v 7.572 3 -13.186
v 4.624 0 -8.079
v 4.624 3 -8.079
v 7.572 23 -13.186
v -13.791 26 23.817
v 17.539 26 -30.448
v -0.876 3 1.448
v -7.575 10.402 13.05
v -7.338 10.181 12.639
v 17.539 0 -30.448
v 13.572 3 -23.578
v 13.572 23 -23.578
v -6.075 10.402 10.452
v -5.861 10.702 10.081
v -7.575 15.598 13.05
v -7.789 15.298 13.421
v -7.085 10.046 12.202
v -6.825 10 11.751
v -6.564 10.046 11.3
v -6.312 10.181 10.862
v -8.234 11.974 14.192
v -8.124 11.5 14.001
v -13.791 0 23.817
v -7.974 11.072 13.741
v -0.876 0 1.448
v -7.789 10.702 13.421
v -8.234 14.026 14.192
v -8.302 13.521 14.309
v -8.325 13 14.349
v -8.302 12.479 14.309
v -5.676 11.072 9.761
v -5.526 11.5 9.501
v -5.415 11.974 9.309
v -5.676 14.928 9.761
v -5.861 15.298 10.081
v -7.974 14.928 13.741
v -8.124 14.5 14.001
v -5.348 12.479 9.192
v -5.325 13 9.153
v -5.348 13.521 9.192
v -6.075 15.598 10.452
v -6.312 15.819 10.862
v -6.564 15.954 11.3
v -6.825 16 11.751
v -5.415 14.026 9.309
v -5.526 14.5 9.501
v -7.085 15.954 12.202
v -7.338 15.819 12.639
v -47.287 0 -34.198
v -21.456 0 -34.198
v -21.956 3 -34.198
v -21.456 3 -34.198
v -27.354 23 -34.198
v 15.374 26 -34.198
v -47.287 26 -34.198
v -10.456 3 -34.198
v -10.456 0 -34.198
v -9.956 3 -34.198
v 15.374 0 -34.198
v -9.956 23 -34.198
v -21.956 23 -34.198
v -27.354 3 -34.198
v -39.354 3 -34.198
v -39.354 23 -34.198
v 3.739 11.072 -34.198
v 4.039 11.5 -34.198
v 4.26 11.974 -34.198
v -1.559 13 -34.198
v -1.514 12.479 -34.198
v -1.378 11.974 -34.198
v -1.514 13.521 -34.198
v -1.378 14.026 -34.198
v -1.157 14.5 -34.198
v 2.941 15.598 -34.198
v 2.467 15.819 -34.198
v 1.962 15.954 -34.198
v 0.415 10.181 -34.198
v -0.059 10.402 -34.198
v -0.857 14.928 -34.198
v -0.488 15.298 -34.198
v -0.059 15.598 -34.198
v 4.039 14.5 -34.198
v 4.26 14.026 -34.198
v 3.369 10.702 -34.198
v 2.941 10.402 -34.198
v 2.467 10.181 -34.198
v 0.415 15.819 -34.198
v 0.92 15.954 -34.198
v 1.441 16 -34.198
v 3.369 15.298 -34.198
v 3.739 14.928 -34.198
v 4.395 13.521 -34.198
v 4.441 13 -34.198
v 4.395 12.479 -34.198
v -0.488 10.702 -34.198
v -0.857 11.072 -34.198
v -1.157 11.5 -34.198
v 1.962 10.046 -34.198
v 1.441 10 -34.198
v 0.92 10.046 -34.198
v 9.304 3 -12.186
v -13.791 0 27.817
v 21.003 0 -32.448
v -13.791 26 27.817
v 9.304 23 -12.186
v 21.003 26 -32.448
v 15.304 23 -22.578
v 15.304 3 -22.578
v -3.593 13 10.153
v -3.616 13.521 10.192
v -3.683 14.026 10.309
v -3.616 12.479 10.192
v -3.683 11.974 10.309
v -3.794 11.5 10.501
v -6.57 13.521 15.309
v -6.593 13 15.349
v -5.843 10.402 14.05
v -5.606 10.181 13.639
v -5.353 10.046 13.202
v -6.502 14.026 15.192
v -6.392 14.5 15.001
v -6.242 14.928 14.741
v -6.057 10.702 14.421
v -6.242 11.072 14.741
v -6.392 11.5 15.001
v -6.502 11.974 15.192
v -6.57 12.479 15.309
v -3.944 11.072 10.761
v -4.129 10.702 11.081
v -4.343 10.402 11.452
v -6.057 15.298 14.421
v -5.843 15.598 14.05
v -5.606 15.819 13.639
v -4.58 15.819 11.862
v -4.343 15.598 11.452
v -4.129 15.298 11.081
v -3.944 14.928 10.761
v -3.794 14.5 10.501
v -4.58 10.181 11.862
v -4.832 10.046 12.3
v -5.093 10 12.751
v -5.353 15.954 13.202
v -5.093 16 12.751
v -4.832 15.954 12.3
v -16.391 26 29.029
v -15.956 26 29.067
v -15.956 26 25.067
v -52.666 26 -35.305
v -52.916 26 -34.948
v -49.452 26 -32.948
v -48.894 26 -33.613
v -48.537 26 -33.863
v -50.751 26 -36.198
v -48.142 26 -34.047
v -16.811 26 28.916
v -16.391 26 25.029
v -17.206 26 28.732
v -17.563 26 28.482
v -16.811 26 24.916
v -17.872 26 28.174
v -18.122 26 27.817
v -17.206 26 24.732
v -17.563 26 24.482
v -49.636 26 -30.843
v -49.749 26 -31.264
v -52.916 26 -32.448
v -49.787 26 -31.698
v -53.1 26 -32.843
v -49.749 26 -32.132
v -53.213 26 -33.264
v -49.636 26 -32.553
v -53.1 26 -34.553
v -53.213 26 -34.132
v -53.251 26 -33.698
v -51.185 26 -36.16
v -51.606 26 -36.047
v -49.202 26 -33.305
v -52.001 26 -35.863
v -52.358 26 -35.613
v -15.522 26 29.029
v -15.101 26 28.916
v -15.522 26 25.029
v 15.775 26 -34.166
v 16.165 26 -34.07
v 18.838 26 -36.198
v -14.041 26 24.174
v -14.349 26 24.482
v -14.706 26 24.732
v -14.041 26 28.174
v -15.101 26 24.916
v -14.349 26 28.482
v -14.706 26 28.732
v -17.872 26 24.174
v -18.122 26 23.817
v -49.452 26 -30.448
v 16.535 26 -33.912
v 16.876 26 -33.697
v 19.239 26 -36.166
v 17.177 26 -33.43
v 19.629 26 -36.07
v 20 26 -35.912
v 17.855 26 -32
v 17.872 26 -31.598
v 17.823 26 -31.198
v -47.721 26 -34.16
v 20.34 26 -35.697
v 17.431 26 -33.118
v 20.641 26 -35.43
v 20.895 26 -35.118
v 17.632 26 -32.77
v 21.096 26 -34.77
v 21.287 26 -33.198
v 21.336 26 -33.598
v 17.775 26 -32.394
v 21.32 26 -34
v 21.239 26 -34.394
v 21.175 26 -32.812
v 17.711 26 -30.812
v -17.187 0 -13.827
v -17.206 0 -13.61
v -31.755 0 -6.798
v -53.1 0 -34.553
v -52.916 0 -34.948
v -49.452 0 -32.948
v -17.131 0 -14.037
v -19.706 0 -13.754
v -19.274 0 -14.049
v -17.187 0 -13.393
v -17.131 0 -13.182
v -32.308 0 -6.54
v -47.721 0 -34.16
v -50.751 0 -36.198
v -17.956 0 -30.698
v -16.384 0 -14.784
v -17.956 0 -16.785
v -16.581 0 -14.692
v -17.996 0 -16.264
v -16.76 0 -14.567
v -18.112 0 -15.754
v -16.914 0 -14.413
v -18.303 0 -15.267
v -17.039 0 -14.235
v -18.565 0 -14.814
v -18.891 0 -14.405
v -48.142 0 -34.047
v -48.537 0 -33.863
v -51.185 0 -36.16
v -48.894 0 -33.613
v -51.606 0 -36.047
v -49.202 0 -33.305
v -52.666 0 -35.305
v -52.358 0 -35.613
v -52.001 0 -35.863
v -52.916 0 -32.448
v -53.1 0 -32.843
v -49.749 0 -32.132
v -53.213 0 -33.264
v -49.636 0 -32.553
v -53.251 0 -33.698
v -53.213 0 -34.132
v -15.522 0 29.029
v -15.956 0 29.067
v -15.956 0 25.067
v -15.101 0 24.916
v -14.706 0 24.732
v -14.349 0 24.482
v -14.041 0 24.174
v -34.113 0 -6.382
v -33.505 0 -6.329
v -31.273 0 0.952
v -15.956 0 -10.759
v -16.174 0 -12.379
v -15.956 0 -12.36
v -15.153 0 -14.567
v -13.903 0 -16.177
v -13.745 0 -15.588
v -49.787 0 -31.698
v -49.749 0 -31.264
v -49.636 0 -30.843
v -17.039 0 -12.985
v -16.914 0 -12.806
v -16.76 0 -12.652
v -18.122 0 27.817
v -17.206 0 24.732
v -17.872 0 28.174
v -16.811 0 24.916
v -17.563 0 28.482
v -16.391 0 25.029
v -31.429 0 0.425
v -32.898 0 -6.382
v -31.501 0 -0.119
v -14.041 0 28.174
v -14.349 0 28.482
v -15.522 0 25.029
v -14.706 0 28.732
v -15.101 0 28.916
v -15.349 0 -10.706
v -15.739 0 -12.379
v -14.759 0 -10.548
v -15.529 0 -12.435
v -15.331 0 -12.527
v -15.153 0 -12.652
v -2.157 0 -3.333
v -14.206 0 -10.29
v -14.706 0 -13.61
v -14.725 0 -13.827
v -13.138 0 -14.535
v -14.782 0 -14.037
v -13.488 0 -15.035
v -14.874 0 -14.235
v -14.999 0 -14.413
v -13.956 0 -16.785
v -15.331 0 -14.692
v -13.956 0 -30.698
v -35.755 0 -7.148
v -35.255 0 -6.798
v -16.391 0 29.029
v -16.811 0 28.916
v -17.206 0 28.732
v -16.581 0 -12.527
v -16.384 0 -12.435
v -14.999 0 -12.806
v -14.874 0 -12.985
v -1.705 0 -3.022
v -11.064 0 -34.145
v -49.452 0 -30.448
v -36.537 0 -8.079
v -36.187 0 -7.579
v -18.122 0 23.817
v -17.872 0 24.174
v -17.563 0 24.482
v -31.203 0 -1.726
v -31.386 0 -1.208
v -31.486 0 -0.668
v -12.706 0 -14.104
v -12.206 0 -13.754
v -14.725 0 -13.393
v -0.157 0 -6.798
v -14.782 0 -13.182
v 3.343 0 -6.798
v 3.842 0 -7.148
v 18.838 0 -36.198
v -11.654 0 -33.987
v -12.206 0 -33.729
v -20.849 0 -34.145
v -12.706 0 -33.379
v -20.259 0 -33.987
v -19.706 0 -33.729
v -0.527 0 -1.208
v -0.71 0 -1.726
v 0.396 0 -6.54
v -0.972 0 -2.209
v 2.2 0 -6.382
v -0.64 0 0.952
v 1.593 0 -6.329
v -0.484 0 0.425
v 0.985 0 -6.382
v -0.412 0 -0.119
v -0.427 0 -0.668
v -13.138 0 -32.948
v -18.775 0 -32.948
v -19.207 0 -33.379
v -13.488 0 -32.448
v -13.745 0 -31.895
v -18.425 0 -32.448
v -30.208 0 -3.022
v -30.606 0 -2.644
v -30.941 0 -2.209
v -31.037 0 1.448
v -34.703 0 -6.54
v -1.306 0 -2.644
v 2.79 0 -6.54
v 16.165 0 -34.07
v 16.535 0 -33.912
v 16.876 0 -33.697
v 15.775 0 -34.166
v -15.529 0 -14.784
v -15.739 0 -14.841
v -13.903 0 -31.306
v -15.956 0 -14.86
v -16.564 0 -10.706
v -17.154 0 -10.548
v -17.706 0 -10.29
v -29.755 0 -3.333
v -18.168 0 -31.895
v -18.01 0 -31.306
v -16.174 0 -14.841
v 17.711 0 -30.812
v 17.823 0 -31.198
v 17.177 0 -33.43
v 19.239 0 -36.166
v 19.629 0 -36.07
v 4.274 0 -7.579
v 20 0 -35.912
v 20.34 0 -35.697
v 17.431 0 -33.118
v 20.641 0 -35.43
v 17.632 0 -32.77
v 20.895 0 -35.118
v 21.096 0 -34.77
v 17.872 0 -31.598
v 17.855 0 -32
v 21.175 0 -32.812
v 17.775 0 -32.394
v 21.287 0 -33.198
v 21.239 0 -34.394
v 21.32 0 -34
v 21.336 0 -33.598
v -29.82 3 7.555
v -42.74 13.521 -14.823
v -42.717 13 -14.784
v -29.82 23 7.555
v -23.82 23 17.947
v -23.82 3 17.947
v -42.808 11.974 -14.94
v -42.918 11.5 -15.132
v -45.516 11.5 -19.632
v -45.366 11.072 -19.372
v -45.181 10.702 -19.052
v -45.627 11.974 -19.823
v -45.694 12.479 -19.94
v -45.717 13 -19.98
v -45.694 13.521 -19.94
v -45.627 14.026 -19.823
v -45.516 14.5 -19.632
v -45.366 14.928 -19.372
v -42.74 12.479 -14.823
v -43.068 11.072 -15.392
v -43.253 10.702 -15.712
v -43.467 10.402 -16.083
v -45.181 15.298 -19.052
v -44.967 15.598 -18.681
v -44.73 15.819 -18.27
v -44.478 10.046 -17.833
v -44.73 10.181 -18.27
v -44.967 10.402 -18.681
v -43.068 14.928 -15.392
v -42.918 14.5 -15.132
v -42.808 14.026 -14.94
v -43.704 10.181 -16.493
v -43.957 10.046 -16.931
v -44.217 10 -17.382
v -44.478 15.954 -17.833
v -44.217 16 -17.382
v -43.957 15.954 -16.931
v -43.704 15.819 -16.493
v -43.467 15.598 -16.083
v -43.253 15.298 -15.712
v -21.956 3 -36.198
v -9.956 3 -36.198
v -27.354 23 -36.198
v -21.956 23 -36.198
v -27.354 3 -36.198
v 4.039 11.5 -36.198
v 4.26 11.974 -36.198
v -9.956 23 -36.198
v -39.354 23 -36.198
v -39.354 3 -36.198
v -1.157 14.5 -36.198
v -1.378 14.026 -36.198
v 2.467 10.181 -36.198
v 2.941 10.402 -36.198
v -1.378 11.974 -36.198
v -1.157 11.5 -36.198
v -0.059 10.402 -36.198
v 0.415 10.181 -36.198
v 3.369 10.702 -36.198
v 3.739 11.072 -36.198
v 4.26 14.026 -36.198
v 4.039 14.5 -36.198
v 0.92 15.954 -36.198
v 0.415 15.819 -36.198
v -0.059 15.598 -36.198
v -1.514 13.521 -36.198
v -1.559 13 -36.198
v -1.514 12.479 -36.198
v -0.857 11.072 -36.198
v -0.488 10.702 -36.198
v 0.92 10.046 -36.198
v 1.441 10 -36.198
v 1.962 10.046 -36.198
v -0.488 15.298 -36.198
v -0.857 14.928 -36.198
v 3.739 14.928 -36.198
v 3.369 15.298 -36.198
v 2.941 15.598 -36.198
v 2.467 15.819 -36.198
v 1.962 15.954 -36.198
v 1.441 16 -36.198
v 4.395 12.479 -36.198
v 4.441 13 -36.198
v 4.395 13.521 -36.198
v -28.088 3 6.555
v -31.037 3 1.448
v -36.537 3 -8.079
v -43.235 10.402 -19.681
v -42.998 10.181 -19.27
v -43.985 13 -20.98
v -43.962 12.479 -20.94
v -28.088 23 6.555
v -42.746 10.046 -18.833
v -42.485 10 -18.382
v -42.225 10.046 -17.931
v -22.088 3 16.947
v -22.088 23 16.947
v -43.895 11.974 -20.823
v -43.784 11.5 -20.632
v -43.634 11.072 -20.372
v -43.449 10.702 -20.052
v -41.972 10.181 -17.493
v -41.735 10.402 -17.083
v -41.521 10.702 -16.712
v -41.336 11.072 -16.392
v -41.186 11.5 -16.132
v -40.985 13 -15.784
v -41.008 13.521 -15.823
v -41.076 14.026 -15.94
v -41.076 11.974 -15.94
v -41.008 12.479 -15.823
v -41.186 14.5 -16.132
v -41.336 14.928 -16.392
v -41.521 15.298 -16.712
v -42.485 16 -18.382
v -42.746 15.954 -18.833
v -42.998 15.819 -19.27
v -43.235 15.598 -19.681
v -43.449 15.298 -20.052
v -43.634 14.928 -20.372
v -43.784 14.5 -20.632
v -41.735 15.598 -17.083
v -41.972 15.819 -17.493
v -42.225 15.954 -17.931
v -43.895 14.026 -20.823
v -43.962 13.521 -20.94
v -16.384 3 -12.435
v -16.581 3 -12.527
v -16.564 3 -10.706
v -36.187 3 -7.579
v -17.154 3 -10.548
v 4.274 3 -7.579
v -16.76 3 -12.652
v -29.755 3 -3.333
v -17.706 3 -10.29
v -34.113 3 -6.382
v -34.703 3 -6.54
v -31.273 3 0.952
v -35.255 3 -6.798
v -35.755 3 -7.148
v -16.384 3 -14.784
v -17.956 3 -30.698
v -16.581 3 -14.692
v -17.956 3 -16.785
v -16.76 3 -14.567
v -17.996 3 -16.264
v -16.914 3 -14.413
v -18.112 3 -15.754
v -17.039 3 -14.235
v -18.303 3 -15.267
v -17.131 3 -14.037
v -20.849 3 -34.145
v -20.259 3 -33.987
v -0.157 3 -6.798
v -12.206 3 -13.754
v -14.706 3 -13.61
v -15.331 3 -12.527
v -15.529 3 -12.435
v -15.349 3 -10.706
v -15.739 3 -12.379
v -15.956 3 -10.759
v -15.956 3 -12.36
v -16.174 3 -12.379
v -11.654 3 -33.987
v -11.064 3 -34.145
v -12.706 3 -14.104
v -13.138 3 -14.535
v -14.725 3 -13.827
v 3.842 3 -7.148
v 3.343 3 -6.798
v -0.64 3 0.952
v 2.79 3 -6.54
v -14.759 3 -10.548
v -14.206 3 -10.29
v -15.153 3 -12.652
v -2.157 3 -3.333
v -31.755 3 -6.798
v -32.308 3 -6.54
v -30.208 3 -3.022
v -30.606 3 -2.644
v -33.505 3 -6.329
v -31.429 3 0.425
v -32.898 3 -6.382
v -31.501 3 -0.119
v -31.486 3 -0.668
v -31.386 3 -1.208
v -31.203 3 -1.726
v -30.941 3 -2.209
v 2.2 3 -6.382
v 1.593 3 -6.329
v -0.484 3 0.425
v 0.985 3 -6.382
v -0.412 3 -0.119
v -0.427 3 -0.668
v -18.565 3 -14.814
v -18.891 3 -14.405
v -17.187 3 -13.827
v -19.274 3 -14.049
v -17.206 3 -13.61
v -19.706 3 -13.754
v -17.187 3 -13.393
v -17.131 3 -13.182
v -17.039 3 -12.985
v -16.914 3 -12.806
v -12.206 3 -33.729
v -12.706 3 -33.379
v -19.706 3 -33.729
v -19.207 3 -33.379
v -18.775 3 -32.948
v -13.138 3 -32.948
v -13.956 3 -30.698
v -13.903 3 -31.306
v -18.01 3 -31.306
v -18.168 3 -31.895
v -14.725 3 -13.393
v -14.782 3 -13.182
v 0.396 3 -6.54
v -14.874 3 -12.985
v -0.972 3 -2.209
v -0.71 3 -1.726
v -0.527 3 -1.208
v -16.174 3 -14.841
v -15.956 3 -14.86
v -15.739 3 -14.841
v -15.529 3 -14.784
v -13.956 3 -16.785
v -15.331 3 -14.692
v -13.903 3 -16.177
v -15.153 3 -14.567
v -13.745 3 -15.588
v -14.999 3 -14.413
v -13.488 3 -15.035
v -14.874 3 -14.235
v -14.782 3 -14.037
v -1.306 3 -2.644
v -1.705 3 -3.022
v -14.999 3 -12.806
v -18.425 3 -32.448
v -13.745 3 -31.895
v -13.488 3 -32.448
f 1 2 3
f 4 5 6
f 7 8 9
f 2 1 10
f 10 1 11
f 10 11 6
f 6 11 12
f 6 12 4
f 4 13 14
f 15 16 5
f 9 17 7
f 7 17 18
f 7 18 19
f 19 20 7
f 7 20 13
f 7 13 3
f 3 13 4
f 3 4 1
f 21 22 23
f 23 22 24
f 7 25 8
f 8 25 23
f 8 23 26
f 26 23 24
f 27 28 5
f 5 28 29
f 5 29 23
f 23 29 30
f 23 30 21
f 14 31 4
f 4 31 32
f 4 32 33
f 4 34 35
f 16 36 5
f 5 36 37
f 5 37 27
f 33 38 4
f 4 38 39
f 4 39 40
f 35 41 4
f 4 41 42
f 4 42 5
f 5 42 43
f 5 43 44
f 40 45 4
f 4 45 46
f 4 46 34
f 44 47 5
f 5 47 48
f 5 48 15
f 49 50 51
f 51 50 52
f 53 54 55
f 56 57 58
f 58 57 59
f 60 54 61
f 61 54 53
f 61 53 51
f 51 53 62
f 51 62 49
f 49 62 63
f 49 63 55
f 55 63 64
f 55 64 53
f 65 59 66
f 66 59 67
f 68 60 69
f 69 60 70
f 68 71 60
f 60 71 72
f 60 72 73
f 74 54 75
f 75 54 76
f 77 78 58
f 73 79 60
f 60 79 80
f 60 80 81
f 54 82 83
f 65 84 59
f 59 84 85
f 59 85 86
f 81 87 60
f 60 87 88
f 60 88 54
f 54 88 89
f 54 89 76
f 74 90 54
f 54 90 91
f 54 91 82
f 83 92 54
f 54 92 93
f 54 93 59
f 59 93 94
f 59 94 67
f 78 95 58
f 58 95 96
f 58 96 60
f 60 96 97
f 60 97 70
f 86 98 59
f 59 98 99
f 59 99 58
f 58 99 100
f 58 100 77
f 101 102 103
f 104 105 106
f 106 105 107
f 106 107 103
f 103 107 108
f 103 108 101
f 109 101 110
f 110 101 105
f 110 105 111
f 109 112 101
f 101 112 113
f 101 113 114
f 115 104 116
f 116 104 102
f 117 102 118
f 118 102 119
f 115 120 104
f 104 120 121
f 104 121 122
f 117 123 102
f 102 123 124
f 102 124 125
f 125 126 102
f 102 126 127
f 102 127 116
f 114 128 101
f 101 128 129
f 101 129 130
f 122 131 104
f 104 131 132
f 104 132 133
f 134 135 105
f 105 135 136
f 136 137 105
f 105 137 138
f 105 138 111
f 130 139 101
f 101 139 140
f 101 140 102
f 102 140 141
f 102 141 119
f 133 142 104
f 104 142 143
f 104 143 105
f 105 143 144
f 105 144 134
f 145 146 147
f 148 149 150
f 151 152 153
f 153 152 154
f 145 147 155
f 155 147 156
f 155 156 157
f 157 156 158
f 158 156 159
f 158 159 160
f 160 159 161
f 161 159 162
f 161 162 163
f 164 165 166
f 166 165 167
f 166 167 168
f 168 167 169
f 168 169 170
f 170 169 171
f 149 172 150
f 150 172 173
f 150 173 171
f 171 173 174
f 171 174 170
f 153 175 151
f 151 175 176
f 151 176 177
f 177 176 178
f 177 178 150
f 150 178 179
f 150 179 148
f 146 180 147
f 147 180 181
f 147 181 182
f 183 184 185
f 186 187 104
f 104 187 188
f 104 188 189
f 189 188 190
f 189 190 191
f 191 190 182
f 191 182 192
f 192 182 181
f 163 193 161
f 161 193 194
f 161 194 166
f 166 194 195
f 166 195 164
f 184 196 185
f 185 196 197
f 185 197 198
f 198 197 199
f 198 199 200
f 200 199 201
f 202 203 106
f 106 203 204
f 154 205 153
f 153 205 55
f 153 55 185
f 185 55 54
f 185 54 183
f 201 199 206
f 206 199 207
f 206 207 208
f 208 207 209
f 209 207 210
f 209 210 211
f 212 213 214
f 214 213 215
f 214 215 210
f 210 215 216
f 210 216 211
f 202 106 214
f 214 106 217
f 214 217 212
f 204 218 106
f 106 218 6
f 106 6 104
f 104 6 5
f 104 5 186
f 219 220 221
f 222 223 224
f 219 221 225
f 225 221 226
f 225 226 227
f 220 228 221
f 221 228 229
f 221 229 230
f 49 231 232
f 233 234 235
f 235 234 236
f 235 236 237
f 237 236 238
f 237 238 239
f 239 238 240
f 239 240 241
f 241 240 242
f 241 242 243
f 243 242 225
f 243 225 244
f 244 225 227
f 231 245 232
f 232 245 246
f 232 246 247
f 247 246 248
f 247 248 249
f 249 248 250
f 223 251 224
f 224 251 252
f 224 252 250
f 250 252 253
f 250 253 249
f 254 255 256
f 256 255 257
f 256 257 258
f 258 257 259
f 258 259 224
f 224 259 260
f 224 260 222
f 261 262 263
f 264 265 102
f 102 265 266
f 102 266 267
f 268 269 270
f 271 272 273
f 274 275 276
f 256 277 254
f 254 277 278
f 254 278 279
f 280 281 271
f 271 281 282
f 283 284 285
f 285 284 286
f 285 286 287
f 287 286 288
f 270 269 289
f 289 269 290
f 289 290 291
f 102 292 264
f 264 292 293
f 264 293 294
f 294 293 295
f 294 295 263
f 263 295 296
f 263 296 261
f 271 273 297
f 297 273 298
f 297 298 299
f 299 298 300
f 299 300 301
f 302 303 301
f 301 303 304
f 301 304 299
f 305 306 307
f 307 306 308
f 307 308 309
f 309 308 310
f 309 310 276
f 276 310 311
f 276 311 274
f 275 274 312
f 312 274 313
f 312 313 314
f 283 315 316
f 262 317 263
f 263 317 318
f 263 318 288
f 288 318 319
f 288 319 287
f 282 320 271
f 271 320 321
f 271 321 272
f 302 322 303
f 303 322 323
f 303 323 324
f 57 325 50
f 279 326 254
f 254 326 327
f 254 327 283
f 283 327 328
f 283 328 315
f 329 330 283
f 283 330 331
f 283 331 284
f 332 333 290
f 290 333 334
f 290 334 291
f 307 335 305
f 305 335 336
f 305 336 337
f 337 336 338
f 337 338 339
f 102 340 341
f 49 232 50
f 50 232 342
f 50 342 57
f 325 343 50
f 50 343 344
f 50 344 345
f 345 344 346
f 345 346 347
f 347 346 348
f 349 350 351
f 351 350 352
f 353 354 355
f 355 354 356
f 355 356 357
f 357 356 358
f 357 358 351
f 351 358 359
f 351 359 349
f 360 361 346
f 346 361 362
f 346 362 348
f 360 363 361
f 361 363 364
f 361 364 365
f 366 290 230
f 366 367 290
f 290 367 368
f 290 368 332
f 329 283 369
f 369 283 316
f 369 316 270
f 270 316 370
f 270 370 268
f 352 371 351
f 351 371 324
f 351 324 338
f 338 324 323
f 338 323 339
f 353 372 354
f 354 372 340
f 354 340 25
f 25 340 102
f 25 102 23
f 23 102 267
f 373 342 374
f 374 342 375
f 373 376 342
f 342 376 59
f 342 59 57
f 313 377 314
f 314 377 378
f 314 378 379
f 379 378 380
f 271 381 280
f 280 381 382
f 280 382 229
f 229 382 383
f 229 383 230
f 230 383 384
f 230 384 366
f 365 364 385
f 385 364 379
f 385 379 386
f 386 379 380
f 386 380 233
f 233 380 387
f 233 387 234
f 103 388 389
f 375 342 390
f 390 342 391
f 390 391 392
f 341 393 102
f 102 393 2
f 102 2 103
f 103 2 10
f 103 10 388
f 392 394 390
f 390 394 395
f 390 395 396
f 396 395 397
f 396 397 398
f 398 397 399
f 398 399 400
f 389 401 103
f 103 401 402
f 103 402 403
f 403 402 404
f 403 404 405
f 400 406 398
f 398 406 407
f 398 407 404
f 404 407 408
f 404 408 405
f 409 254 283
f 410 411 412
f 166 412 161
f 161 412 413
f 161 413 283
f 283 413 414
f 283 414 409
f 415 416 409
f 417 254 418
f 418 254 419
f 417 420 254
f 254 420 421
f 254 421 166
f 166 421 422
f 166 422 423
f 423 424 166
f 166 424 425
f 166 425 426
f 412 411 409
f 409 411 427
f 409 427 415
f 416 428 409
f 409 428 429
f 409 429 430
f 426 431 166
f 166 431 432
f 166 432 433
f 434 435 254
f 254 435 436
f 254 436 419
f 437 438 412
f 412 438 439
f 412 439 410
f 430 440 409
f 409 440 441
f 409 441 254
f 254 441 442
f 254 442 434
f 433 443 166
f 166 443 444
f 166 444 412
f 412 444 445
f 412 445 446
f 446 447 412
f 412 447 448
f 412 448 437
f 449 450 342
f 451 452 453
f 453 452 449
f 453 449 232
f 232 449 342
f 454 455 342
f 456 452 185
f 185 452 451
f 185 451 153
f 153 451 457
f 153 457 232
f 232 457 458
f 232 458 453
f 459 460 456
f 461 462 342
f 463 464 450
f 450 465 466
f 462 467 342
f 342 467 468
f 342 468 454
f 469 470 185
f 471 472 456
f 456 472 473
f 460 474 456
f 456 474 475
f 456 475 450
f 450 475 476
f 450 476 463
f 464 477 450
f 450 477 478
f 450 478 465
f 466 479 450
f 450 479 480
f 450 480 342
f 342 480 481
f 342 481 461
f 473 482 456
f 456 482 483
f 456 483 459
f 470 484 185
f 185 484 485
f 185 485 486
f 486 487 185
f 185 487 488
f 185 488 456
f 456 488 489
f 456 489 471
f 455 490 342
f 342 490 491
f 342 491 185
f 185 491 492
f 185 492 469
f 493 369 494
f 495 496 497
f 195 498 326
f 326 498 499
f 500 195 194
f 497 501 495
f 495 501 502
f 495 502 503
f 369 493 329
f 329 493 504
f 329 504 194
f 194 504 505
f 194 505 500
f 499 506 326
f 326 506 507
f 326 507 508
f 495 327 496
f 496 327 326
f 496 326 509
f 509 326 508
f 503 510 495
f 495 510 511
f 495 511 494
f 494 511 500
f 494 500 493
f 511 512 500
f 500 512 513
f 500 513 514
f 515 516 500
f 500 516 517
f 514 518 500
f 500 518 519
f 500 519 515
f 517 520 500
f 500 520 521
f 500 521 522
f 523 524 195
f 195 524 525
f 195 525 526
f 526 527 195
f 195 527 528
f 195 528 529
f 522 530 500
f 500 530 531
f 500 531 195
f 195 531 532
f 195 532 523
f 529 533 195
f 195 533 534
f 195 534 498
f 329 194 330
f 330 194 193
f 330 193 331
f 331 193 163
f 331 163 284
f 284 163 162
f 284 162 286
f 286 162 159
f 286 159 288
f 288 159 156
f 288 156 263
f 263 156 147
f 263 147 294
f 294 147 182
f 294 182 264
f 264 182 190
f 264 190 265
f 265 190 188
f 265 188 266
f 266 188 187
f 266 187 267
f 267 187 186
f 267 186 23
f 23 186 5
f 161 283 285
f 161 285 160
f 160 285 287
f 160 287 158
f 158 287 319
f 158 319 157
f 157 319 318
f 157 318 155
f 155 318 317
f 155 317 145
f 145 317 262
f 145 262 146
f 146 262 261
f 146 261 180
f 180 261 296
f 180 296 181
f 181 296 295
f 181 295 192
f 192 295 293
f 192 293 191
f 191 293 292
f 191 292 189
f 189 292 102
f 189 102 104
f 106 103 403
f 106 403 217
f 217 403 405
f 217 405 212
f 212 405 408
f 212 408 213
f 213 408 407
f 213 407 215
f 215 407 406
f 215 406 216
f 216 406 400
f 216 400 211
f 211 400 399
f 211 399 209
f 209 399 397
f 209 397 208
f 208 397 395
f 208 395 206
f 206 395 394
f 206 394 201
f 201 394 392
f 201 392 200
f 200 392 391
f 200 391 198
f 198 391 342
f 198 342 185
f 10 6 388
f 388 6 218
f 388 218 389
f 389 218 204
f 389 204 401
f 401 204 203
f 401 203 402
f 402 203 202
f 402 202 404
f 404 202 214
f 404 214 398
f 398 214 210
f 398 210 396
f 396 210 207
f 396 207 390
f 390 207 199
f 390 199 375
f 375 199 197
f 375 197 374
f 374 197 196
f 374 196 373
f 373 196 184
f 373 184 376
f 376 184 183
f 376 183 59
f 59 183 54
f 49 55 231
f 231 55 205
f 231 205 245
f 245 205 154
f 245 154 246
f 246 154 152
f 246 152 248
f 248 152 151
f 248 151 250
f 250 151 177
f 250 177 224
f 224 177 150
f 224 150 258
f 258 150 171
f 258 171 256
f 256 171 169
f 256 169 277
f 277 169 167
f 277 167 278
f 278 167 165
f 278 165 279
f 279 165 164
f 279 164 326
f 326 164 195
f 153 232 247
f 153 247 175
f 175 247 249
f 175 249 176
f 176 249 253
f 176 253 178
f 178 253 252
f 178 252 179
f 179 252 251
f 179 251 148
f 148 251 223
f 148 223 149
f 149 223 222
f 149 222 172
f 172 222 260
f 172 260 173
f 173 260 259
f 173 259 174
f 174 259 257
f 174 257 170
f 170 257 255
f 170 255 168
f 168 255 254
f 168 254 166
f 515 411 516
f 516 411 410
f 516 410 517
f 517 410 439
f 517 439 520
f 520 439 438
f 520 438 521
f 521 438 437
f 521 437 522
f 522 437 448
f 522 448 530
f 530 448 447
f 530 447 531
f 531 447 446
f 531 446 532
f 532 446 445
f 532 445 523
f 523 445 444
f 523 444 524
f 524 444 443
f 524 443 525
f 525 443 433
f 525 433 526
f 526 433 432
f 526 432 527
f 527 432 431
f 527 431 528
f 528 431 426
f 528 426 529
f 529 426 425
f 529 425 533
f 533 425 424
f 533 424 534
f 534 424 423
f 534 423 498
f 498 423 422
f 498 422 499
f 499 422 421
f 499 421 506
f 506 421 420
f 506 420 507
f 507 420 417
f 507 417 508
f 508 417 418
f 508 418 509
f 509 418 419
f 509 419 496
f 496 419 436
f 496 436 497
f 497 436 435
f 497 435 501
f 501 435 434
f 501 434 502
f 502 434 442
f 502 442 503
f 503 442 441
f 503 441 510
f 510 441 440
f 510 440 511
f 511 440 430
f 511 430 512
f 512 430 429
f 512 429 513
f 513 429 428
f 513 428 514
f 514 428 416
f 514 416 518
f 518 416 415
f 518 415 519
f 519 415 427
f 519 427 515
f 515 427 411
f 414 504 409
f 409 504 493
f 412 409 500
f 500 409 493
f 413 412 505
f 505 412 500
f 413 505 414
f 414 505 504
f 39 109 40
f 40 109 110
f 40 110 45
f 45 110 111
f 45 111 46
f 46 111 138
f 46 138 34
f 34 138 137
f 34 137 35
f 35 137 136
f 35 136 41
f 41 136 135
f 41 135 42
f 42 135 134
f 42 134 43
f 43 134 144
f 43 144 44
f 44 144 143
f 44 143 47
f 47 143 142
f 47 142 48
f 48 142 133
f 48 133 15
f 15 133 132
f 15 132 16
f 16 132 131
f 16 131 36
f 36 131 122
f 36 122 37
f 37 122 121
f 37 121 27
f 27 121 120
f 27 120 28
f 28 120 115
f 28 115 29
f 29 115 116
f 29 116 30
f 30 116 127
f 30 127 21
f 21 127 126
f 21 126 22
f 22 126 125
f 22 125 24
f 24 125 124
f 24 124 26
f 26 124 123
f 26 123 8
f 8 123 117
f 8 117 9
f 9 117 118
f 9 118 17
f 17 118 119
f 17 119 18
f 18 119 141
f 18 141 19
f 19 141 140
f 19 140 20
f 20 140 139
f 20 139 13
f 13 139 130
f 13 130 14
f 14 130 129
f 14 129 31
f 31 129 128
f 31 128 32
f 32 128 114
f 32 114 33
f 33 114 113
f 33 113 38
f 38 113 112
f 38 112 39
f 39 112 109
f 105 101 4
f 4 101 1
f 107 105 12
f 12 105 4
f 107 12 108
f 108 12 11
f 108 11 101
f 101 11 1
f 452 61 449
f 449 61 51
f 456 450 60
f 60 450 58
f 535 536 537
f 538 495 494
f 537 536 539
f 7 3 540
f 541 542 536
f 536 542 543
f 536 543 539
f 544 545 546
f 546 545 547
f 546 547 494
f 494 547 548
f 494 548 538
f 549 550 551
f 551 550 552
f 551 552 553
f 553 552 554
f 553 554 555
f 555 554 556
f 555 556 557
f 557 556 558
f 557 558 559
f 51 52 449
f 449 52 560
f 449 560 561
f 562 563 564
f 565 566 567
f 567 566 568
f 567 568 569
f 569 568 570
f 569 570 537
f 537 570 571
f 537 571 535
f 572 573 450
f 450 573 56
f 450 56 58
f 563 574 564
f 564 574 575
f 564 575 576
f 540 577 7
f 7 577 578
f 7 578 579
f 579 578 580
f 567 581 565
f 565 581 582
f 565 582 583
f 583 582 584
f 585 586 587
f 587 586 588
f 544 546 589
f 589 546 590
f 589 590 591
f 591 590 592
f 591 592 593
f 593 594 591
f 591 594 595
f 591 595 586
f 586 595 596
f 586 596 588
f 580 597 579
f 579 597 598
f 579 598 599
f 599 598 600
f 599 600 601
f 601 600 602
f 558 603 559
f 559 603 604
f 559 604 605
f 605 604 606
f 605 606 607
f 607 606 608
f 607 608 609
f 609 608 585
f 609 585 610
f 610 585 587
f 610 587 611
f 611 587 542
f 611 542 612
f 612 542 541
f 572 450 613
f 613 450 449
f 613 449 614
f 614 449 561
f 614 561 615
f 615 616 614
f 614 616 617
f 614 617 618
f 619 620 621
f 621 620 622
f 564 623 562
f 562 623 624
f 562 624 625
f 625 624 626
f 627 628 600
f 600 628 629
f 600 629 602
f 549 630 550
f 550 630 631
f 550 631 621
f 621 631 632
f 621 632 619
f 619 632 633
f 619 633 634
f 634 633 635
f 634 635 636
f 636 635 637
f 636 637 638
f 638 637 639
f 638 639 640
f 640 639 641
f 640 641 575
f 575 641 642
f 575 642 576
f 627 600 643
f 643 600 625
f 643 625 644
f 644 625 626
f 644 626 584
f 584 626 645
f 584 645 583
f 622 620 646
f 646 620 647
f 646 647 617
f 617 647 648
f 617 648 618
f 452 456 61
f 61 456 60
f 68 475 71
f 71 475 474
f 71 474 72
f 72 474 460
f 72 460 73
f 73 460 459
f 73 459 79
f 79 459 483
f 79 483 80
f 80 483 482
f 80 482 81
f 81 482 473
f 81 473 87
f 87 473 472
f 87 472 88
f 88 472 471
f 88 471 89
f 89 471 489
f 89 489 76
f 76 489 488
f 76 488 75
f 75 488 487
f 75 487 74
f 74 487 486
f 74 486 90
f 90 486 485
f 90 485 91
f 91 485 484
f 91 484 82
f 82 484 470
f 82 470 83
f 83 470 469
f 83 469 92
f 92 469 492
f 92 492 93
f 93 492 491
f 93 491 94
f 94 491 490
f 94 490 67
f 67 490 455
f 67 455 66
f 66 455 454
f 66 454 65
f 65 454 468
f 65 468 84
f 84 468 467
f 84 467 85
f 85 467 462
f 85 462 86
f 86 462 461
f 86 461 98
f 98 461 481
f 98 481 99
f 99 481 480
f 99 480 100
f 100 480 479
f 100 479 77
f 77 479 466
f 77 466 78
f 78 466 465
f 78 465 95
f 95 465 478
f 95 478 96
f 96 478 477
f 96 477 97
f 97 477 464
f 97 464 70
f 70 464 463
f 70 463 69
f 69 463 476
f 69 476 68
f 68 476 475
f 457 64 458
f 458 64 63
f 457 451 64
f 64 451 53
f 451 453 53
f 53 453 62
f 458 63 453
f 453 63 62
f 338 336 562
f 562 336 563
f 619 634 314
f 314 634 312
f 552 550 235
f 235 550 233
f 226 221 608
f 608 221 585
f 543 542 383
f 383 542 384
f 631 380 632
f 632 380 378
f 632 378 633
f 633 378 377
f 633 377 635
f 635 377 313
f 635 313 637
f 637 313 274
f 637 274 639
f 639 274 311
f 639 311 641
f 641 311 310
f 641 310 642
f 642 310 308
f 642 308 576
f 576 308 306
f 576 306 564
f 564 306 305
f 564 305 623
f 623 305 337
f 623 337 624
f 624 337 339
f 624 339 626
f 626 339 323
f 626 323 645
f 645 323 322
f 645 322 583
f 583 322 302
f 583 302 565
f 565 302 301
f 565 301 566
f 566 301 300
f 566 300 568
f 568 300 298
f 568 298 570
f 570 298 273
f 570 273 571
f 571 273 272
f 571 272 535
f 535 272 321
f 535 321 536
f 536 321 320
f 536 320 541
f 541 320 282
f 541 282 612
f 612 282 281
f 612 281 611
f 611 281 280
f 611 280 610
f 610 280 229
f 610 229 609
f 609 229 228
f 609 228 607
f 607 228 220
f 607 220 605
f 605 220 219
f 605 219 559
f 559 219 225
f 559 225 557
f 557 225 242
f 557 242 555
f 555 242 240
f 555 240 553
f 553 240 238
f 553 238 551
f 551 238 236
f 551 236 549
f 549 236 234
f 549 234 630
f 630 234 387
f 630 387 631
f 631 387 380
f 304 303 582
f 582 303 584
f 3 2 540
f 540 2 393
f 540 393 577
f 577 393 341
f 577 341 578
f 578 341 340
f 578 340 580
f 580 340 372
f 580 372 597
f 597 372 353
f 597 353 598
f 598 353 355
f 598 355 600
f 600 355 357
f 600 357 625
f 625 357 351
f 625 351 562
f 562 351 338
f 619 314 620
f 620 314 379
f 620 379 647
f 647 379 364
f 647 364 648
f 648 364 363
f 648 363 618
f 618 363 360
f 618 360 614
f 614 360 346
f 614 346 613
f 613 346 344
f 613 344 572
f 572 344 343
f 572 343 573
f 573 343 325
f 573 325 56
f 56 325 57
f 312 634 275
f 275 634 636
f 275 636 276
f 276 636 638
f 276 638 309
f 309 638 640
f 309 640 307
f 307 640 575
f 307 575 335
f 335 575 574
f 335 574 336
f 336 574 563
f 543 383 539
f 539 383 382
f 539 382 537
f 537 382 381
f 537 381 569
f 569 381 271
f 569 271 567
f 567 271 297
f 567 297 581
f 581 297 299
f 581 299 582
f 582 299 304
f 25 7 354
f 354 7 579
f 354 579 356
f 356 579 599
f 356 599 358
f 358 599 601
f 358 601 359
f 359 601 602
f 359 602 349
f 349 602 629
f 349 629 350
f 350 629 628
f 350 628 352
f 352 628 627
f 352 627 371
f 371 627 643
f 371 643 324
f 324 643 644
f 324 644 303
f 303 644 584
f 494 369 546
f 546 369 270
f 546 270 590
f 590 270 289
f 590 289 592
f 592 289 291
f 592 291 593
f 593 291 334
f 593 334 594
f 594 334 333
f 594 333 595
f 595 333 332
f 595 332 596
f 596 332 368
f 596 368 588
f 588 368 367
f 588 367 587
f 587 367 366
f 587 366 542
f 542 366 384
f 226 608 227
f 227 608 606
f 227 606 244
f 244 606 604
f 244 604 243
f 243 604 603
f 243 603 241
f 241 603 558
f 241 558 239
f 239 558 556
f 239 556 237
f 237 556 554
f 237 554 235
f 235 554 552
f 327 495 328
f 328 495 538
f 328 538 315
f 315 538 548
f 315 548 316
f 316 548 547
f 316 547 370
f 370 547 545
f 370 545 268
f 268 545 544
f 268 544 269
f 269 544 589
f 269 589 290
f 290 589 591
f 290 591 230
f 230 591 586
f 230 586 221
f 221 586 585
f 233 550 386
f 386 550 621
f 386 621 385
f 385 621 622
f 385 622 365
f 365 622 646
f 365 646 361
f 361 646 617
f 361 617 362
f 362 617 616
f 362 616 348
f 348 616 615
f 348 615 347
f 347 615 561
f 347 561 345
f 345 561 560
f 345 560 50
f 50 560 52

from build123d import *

# Parameters (mm, degrees)
BOSS_EXTRUDE1_DEPTH = 26
FILLET1_R           = 2.5
CUT_EXTRUDE1_REACH  = 76.051
SKETCH2_R           = 3
CUT_EXTRUDE2_REACH  = 73.261
SKETCH3_R           = 3
CUT_EXTRUDE3_REACH  = 90.154
SKETCH4_R           = 3
SKETCH4_W           = 12
SKETCH4_H           = 20
BOSS_EXTRUDE2_DEPTH = 3
FILLET2_R           = 3.5


with BuildPart() as part:
    # Sketch1 → Boss-Extrude1 (new body)
    with BuildSketch(Plane(origin=(0, 0, 0), x_dir=(1, 0, 0), z_dir=(0, 1, 0))):
        Polygon((-55.080799194, 36.198206666), (23.167912006, 36.198206666), (-15.956443594, -31.567165046), align=None)
        Polygon((-51.616697579, 34.198206666), (19.703810391, 34.198206666), (-15.956443594, -27.567165046), align=None, mode=Mode.SUBTRACT)
    extrude(amount=BOSS_EXTRUDE1_DEPTH)

    # Fillet1
    fillet1_edges = [part.edges().sort_by_distance(p)[0] for p in [
        (-51.616697579, 13, -34.198206666),
        (-15.956443594, 13, 27.567165046),
        (19.703810391, 13, -34.198206666),
        (-55.080799194, 13, -36.198206666),
        (23.167912006, 13, -36.198206666),
        (-15.956443594, 13, 31.567165046),
    ]]
    fillet(fillet1_edges, radius=FILLET1_R)

    # Sketch2 → Cut-Extrude1 (cut, up to next)
    with BuildSketch(Plane(origin=(-25.636316123, 0, 14.801134015), x_dir=(0.49999999999999806, 0, 0.8660254037844397), z_dir=(-0.8660254037844397, 0, 0.49999999999999806)), mode=Mode.PRIVATE) as cut_extrude1_sk1:
        Polygon((3.632503749, 4.258248906), (-8.367496251, 8.741751094), (-8.367496251, 3), (3.632503749, 3), align=None)
    cut_extrude1_tool1 = extrude(cut_extrude1_sk1.sketch, amount=-CUT_EXTRUDE1_REACH, mode=Mode.PRIVATE) & part.part
    # Sketch2 → Cut-Extrude1 (cut, up to next)
    with BuildSketch(Plane(origin=(-25.636316123, 0, 14.801134015), x_dir=(0.49999999999999806, 0, 0.8660254037844397), z_dir=(-0.8660254037844397, 0, 0.49999999999999806)), mode=Mode.PRIVATE) as cut_extrude1_sk2:
        Polygon((-8.367496251, 13), (-8.367496251, 8.741751094), (3.632503749, 4.258248906), (3.632503749, 13), align=None)
    cut_extrude1_tool2 = extrude(cut_extrude1_sk2.sketch, amount=-CUT_EXTRUDE1_REACH, mode=Mode.PRIVATE) & part.part
    # Sketch2 → Cut-Extrude1 (cut, up to next)
    with BuildSketch(Plane(origin=(-25.636316123, 0, 14.801134015), x_dir=(0.49999999999999806, 0, 0.8660254037844397), z_dir=(-0.8660254037844397, 0, 0.49999999999999806)), mode=Mode.PRIVATE) as cut_extrude1_sk3:
        Polygon((3.632503749, 21.741751094), (-8.367496251, 17.258248906), (-8.367496251, 13), (3.632503749, 13), align=None)
    cut_extrude1_tool3 = extrude(cut_extrude1_sk3.sketch, amount=-CUT_EXTRUDE1_REACH, mode=Mode.PRIVATE) & part.part
    # Sketch2 → Cut-Extrude1 (cut, up to next)
    with BuildSketch(Plane(origin=(-25.636316123, 0, 14.801134015), x_dir=(0.49999999999999806, 0, 0.8660254037844397), z_dir=(-0.8660254037844397, 0, 0.49999999999999806)), mode=Mode.PRIVATE) as cut_extrude1_sk4:
        Polygon((-8.367496251, 23), (-8.367496251, 17.258248906), (3.632503749, 21.741751094), (3.632503749, 23), align=None)
    cut_extrude1_tool4 = extrude(cut_extrude1_sk4.sketch, amount=-CUT_EXTRUDE1_REACH, mode=Mode.PRIVATE) & part.part
    # Sketch2 → Cut-Extrude1 (cut, up to next)
    with BuildSketch(Plane(origin=(-25.636316123, 0, 14.801134015), x_dir=(0.49999999999999806, 0, 0.8660254037844397), z_dir=(-0.8660254037844397, 0, 0.49999999999999806)), mode=Mode.PRIVATE) as cut_extrude1_sk5:
        with Locations((-37.161724832, 13)):
            Circle(SKETCH2_R)
    cut_extrude1_tool5 = extrude(cut_extrude1_sk5.sketch, amount=-CUT_EXTRUDE1_REACH, mode=Mode.PRIVATE) & part.part
    add(cut_extrude1_tool1.solids().sort_by_distance((-27.460565, 4.989307, 11.641443))[0], mode=Mode.SUBTRACT)
    add(cut_extrude1_tool2.solids().sort_by_distance((-26.475179, 9.621142, 13.34818))[0], mode=Mode.SUBTRACT)
    add(cut_extrude1_tool3.solids().sort_by_distance((-26.475179, 16.378858, 13.34818))[0], mode=Mode.SUBTRACT)
    add(cut_extrude1_tool4.solids().sort_by_distance((-27.460565, 21.010693, 11.641443))[0], mode=Mode.SUBTRACT)
    add(cut_extrude1_tool5.solids().sort_by_distance((-44.217179, 13, -17.381864))[0], mode=Mode.SUBTRACT)

    # Sketch3 → Cut-Extrude2 (cut, up to next)
    with BuildSketch(Plane(origin=(1.701650732, 0, 0.982448508), x_dir=(0.5000000000000041, 0, -0.8660254037844364), z_dir=(0.8660254037844364, 0, 0.5000000000000041)), mode=Mode.PRIVATE) as cut_extrude2_sk1:
        Polygon((15.205281238, 13), (15.205281238, 8.741751094), (27.205281238, 4.258248906), (27.205281238, 13), align=None)
    cut_extrude2_tool1 = extrude(cut_extrude2_sk1.sketch, amount=-CUT_EXTRUDE2_REACH, mode=Mode.PRIVATE) & part.part
    # Sketch3 → Cut-Extrude2 (cut, up to next)
    with BuildSketch(Plane(origin=(1.701650732, 0, 0.982448508), x_dir=(0.5000000000000041, 0, -0.8660254037844364), z_dir=(0.8660254037844364, 0, 0.5000000000000041)), mode=Mode.PRIVATE) as cut_extrude2_sk2:
        Polygon((27.205281238, 4.258248906), (15.205281238, 8.741751094), (15.205281238, 3), (27.205281238, 3), align=None)
    cut_extrude2_tool2 = extrude(cut_extrude2_sk2.sketch, amount=-CUT_EXTRUDE2_REACH, mode=Mode.PRIVATE) & part.part
    # Sketch3 → Cut-Extrude2 (cut, up to next)
    with BuildSketch(Plane(origin=(1.701650732, 0, 0.982448508), x_dir=(0.5000000000000041, 0, -0.8660254037844364), z_dir=(0.8660254037844364, 0, 0.5000000000000041)), mode=Mode.PRIVATE) as cut_extrude2_sk3:
        Polygon((27.205281238, 21.741751094), (15.205281238, 17.258248906), (15.205281238, 13), (27.205281238, 13), align=None)
    cut_extrude2_tool3 = extrude(cut_extrude2_sk3.sketch, amount=-CUT_EXTRUDE2_REACH, mode=Mode.PRIVATE) & part.part
    # Sketch3 → Cut-Extrude2 (cut, up to next)
    with BuildSketch(Plane(origin=(1.701650732, 0, 0.982448508), x_dir=(0.5000000000000041, 0, -0.8660254037844364), z_dir=(0.8660254037844364, 0, 0.5000000000000041)), mode=Mode.PRIVATE) as cut_extrude2_sk4:
        Polygon((15.205281238, 23), (15.205281238, 17.258248906), (27.205281238, 21.741751094), (27.205281238, 23), align=None)
    cut_extrude2_tool4 = extrude(cut_extrude2_sk4.sketch, amount=-CUT_EXTRUDE2_REACH, mode=Mode.PRIVATE) & part.part
    # Sketch3 → Cut-Extrude2 (cut, up to next)
    with BuildSketch(Plane(origin=(1.701650732, 0, 0.982448508), x_dir=(0.5000000000000041, 0, -0.8660254037844364), z_dir=(0.8660254037844364, 0, 0.5000000000000041)), mode=Mode.PRIVATE) as cut_extrude2_sk5:
        with Locations((-13.588947343, 13)):
            Circle(SKETCH3_R)
    cut_extrude2_tool5 = extrude(cut_extrude2_sk5.sketch, amount=-CUT_EXTRUDE2_REACH, mode=Mode.PRIVATE) & part.part
    add(cut_extrude2_tool1.solids().sort_by_distance((12.649176, 9.621142, -17.979222))[0], mode=Mode.SUBTRACT)
    add(cut_extrude2_tool2.solids().sort_by_distance((11.663791, 4.989307, -16.272485))[0], mode=Mode.SUBTRACT)
    add(cut_extrude2_tool3.solids().sort_by_distance((12.649176, 16.378858, -17.979222))[0], mode=Mode.SUBTRACT)
    add(cut_extrude2_tool4.solids().sort_by_distance((11.663791, 21.010693, -16.272485))[0], mode=Mode.SUBTRACT)
    add(cut_extrude2_tool5.solids().sort_by_distance((-5.092823, 13, 12.750822))[0], mode=Mode.SUBTRACT)

    # Sketch4 → Cut-Extrude3 (cut, up to next)
    with BuildSketch(Plane(origin=(0, 0, -36.198206666), x_dir=(-1, 0, 0), z_dir=(0, 0, -1)), mode=Mode.PRIVATE) as cut_extrude3_sk1:
        with Locations((-1.440670696, 13)):
            Circle(SKETCH4_R)
    cut_extrude3_tool1 = extrude(cut_extrude3_sk1.sketch, amount=-CUT_EXTRUDE3_REACH, mode=Mode.PRIVATE) & part.part
    # Sketch4 → Cut-Extrude3 (cut, up to next)
    with BuildSketch(Plane(origin=(0, 0, -36.198206666), x_dir=(-1, 0, 0), z_dir=(0, 0, -1)), mode=Mode.PRIVATE) as cut_extrude3_sk2:
        with Locations((15.956443594, 13)):
            Rectangle(SKETCH4_W, SKETCH4_H)
    cut_extrude3_tool2 = extrude(cut_extrude3_sk2.sketch, amount=-CUT_EXTRUDE3_REACH, mode=Mode.PRIVATE) & part.part
    # Sketch4 → Cut-Extrude3 (cut, up to next)
    with BuildSketch(Plane(origin=(0, 0, -36.198206666), x_dir=(-1, 0, 0), z_dir=(0, 0, -1)), mode=Mode.PRIVATE) as cut_extrude3_sk3:
        with Locations((33.353557885, 13)):
            Rectangle(SKETCH4_W, SKETCH4_H)
    cut_extrude3_tool3 = extrude(cut_extrude3_sk3.sketch, amount=-CUT_EXTRUDE3_REACH, mode=Mode.PRIVATE) & part.part
    add(cut_extrude3_tool1.solids().sort_by_distance((1.440671, 13, -36.198207))[0], mode=Mode.SUBTRACT)
    add(cut_extrude3_tool2.solids().sort_by_distance((-15.956444, 13, -36.198207))[0], mode=Mode.SUBTRACT)
    add(cut_extrude3_tool3.solids().sort_by_distance((-33.353558, 13, -36.198207))[0], mode=Mode.SUBTRACT)

    # Sketch5 → Boss-Extrude2 (add)
    with BuildSketch(Plane.XZ):
        with BuildLine():
            Line((-17.038975349, -12.984749429), (-33.786570587, -3.31552081))
            Line((-33.786570587, -3.31552081), (-34.786570587, -5.047571617))
            Line((-34.786570587, -5.047571617), (-17.956443594, -14.764449967))
            Line((-17.956443594, -14.764449967), (-17.956443594, -34.198206666))
            Line((-17.956443594, -34.198206666), (-15.956443594, -34.198206666))
            Line((-15.956443594, -34.198206666), (-15.956443594, -14.859749429))
            ThreePointArc((-15.956443594, -14.859749429), (-17.038975349, -14.234749429), (-17.038975349, -12.984749429))
        make_face()
        with BuildLine():
            Line((-32.786570587, -1.583470002), (-33.786570587, -3.31552081))
            Line((-33.786570587, -3.31552081), (-17.038975349, -12.984749429))
            ThreePointArc((-17.038975349, -12.984749429), (-15.956443594, -12.359749429), (-14.873911839, -12.984749429))
            Line((-14.873911839, -12.984749429), (1.873683398, -3.31552081))
            Line((1.873683398, -3.31552081), (0.873683398, -1.583470002))
            Line((0.873683398, -1.583470002), (-15.956443594, -11.300348352))
            Line((-15.956443594, -11.300348352), (-32.786570587, -1.583470002))
        make_face()
        with BuildLine():
            Line((1.873683398, -3.31552081), (-14.873911839, -12.984749429))
            ThreePointArc((-14.873911839, -12.984749429), (-14.749036311, -13.286225622), (-14.706443594, -13.609749429))
            ThreePointArc((-14.706443594, -13.609749429), (-15.072560118, -14.493632905), (-15.956443594, -14.859749429))
            Line((-15.956443594, -14.859749429), (-15.956443594, -34.198206666))
            Line((-15.956443594, -34.198206666), (-13.956443594, -34.198206666))
            Line((-13.956443594, -34.198206666), (-13.956443594, -14.764449967))
            Line((-13.956443594, -14.764449967), (2.873683398, -5.047571617))
            Line((2.873683398, -5.047571617), (1.873683398, -3.31552081))
        make_face()
    extrude(amount=-BOSS_EXTRUDE2_DEPTH)

    # Fillet2
    fillet2_edges = [part.edges().sort_by_distance(p)[0] for p in [
        (0.873683398, 1.5, -1.583470002),
        (2.873683398, 1.5, -5.047571617),
        (-13.956443594, 1.5, -14.764449967),
        (-13.956443594, 1.5, -34.198206666),
        (-17.956443594, 1.5, -34.198206666),
        (-17.956443594, 1.5, -14.764449967),
        (-34.786570587, 1.5, -5.047571617),
        (-32.786570587, 1.5, -1.583470002),
        (-15.956443594, 1.5, -11.300348352),
    ]]
    fillet(fillet2_edges, radius=FILLET2_R)


solid = part.part
